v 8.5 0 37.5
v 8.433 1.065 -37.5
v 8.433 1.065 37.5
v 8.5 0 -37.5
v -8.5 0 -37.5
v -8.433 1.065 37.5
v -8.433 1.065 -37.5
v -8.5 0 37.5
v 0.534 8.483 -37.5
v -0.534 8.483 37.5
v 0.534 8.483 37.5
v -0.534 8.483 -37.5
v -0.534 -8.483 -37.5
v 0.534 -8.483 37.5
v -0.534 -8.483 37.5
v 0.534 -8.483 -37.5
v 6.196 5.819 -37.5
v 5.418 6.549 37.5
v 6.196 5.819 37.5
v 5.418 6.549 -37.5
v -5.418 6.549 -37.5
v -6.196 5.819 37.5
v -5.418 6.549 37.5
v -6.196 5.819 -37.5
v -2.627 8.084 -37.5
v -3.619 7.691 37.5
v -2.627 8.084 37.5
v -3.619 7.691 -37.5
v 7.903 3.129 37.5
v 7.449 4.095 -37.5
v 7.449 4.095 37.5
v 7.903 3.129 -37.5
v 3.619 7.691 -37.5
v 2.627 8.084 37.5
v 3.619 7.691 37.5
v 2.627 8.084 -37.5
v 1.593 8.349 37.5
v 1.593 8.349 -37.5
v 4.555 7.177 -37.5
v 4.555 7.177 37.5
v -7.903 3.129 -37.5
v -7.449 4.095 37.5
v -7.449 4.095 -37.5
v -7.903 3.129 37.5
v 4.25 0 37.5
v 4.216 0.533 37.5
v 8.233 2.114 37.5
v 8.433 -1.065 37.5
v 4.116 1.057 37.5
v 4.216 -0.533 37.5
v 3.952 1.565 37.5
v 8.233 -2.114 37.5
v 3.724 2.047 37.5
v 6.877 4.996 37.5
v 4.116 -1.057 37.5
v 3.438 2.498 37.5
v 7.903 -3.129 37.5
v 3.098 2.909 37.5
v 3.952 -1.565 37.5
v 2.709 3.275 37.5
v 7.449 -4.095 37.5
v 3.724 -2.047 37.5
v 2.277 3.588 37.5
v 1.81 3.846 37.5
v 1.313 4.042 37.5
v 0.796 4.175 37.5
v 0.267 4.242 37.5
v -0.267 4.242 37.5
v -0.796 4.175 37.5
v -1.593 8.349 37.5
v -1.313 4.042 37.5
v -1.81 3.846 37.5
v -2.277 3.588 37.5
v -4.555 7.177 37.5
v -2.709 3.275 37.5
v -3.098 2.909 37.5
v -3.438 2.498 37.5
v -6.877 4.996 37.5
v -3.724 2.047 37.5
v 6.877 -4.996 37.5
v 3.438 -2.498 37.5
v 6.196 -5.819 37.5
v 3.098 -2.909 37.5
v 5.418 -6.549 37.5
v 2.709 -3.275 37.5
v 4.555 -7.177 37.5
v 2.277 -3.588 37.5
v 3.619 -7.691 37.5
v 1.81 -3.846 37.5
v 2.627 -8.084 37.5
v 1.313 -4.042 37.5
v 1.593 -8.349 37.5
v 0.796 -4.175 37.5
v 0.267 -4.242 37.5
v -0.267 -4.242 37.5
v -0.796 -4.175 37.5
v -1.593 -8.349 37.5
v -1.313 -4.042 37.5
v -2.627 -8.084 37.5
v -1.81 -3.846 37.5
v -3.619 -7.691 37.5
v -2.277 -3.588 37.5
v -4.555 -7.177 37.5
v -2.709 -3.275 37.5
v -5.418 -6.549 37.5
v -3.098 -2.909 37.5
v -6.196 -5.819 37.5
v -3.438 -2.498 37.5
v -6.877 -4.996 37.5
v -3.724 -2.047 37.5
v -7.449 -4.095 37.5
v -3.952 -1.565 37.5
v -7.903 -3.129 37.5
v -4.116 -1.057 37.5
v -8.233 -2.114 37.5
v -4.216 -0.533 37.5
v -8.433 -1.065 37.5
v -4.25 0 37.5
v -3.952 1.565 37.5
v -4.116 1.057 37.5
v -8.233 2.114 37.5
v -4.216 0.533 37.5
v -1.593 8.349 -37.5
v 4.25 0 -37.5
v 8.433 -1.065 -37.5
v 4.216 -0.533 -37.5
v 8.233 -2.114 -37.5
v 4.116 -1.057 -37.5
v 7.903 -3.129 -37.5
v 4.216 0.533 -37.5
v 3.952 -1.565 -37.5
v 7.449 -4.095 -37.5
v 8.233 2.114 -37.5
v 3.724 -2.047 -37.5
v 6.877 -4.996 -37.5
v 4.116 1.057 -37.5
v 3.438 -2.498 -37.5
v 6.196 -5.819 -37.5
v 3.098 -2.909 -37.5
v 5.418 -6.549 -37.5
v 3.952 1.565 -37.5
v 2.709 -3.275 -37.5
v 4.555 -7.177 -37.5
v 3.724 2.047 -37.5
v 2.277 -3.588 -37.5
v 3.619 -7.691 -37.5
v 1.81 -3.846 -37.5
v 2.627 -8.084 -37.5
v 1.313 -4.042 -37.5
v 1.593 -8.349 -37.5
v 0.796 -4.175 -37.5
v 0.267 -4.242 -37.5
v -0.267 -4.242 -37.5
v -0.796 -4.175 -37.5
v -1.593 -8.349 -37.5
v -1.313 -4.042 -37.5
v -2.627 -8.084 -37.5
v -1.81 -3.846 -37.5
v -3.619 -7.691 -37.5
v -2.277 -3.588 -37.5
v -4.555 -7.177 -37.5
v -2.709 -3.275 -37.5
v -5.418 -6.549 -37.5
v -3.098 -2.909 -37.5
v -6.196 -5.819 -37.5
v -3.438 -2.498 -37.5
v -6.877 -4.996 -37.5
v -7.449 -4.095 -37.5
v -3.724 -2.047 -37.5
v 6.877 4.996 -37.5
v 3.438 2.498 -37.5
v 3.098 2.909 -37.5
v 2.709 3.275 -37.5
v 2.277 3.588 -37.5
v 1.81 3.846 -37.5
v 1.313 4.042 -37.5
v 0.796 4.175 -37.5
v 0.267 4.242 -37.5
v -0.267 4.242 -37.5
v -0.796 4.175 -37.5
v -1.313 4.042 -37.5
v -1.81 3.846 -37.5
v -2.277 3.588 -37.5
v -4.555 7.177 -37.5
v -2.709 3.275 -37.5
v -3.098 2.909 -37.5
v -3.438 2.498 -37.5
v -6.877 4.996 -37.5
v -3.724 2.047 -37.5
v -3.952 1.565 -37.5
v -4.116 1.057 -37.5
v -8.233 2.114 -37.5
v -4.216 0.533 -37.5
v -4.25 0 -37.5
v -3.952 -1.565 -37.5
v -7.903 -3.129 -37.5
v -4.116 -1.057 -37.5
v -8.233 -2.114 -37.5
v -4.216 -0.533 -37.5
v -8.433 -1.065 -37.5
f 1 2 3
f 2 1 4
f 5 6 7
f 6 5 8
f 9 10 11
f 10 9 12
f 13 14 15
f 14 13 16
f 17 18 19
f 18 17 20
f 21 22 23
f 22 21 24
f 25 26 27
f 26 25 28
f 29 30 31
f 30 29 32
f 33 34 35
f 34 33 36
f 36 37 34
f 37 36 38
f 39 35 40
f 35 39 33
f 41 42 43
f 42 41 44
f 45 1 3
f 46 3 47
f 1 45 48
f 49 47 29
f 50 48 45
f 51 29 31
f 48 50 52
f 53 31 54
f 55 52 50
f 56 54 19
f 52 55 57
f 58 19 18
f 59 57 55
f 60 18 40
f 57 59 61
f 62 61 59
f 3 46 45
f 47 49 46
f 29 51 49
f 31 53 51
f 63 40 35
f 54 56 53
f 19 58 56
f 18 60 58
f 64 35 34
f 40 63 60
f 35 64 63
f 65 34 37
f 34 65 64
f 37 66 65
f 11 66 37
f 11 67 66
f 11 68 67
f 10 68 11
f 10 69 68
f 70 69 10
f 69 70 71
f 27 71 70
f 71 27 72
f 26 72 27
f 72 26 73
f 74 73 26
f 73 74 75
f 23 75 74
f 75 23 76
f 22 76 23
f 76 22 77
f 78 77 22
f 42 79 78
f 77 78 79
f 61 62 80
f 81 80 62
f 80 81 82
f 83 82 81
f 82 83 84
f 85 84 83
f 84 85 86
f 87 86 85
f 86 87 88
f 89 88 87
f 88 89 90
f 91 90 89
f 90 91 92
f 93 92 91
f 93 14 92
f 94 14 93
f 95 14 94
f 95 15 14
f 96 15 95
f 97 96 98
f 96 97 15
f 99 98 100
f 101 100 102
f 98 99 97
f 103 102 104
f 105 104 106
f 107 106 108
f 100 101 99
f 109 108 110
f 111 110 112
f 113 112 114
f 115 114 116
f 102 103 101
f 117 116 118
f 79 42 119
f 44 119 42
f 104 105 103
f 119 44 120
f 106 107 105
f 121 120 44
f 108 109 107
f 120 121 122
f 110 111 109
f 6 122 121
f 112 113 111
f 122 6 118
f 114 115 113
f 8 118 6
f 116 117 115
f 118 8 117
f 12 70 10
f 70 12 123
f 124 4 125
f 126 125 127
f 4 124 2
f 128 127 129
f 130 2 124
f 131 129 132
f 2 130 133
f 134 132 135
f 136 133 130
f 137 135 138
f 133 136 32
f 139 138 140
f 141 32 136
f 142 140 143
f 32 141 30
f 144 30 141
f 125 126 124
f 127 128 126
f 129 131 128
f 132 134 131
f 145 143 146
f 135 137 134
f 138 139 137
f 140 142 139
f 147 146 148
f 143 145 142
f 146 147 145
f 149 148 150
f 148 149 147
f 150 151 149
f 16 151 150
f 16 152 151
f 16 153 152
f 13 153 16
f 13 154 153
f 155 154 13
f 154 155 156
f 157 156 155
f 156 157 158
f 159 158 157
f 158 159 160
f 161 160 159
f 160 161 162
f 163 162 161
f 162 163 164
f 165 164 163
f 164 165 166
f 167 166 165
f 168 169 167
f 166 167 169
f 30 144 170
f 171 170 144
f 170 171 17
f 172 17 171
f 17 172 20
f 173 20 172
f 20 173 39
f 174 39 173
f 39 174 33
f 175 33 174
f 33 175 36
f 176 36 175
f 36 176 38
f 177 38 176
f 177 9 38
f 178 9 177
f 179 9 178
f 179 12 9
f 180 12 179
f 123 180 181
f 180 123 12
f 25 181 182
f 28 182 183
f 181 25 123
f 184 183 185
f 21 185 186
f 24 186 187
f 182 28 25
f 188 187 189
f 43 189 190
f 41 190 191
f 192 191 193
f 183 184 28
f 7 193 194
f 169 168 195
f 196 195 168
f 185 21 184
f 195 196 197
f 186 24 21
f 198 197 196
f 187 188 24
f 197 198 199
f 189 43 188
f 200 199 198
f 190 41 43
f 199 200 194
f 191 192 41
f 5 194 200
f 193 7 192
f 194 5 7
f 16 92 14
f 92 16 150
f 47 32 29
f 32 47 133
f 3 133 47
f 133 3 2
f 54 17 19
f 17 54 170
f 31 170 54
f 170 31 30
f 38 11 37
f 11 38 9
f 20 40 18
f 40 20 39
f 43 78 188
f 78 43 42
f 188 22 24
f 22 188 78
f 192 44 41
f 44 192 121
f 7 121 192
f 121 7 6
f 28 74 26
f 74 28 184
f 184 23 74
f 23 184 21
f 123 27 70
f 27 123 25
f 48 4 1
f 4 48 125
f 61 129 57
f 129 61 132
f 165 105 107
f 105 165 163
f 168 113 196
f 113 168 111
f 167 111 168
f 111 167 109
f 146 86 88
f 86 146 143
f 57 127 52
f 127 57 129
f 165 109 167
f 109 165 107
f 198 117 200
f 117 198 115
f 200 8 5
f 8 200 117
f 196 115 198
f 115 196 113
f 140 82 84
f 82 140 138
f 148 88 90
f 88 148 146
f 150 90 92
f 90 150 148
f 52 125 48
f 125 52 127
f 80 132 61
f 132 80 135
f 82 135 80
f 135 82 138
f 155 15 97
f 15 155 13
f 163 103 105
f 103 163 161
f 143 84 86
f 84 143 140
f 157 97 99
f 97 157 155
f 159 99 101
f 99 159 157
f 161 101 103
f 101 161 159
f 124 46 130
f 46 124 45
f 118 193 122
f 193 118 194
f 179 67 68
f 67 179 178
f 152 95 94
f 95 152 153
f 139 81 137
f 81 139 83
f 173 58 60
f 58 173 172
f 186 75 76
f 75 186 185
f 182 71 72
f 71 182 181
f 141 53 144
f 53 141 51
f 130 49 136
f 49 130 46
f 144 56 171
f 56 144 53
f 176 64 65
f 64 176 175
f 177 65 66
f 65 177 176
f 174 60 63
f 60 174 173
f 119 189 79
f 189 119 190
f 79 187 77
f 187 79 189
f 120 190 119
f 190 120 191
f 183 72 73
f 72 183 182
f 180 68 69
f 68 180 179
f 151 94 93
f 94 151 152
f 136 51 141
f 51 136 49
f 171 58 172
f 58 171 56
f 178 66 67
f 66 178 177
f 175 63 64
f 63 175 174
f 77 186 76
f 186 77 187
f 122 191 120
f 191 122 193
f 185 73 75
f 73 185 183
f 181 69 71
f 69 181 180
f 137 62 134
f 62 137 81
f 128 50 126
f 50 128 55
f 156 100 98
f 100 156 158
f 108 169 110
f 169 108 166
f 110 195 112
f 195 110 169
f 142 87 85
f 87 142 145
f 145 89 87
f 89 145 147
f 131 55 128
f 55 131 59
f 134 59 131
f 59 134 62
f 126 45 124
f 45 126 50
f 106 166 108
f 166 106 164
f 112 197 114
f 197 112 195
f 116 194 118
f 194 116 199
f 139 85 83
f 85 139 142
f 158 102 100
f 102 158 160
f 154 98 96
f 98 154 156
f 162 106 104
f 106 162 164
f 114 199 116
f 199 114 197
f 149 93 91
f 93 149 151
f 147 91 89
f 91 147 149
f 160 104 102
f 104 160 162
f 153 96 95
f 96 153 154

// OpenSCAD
$fn = 50;


difference() {
	union() {
		translate(v = [0, 0, -37.5000000000]) {
			cylinder(h = 75, r = 8.5000000000);
		}
	}
	union() {
		translate(v = [0, 0, -100.0000000000]) {
			cylinder(h = 200, r = 4.2500000000);
		}
	}
}
